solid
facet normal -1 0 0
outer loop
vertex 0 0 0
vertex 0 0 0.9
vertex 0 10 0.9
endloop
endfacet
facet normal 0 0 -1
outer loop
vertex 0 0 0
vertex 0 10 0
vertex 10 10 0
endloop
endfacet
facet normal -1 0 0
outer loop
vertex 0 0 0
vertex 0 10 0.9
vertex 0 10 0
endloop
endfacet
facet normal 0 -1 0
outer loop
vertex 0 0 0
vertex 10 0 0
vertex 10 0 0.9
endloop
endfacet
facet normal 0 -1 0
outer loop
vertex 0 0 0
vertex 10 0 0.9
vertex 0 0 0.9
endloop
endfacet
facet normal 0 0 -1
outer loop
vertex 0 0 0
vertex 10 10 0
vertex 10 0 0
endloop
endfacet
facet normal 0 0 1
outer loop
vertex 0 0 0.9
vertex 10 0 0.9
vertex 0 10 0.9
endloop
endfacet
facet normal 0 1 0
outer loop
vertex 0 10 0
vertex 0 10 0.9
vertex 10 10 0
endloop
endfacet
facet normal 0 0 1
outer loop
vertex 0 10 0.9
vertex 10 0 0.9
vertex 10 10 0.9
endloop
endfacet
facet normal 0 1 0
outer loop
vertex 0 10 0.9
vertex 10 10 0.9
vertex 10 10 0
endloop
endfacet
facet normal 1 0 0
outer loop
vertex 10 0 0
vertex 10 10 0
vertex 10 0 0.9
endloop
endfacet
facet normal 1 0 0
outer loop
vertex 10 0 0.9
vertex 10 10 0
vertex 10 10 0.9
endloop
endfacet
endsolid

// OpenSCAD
/* Warning, this is a very basic generator with a lot of approximation 
input data : [VQFN, 8CX, 10x10x0.9mm, 88, , A, C04-00445A]
generated by com.zoubworld.electronics.cad.model3d.Basic
Date : Sun Feb 15 10:50:48 CET 2026
*/

//body
color("black")
translate([0,0,0])
cube([10.0,10.0,0.9], center=false);
